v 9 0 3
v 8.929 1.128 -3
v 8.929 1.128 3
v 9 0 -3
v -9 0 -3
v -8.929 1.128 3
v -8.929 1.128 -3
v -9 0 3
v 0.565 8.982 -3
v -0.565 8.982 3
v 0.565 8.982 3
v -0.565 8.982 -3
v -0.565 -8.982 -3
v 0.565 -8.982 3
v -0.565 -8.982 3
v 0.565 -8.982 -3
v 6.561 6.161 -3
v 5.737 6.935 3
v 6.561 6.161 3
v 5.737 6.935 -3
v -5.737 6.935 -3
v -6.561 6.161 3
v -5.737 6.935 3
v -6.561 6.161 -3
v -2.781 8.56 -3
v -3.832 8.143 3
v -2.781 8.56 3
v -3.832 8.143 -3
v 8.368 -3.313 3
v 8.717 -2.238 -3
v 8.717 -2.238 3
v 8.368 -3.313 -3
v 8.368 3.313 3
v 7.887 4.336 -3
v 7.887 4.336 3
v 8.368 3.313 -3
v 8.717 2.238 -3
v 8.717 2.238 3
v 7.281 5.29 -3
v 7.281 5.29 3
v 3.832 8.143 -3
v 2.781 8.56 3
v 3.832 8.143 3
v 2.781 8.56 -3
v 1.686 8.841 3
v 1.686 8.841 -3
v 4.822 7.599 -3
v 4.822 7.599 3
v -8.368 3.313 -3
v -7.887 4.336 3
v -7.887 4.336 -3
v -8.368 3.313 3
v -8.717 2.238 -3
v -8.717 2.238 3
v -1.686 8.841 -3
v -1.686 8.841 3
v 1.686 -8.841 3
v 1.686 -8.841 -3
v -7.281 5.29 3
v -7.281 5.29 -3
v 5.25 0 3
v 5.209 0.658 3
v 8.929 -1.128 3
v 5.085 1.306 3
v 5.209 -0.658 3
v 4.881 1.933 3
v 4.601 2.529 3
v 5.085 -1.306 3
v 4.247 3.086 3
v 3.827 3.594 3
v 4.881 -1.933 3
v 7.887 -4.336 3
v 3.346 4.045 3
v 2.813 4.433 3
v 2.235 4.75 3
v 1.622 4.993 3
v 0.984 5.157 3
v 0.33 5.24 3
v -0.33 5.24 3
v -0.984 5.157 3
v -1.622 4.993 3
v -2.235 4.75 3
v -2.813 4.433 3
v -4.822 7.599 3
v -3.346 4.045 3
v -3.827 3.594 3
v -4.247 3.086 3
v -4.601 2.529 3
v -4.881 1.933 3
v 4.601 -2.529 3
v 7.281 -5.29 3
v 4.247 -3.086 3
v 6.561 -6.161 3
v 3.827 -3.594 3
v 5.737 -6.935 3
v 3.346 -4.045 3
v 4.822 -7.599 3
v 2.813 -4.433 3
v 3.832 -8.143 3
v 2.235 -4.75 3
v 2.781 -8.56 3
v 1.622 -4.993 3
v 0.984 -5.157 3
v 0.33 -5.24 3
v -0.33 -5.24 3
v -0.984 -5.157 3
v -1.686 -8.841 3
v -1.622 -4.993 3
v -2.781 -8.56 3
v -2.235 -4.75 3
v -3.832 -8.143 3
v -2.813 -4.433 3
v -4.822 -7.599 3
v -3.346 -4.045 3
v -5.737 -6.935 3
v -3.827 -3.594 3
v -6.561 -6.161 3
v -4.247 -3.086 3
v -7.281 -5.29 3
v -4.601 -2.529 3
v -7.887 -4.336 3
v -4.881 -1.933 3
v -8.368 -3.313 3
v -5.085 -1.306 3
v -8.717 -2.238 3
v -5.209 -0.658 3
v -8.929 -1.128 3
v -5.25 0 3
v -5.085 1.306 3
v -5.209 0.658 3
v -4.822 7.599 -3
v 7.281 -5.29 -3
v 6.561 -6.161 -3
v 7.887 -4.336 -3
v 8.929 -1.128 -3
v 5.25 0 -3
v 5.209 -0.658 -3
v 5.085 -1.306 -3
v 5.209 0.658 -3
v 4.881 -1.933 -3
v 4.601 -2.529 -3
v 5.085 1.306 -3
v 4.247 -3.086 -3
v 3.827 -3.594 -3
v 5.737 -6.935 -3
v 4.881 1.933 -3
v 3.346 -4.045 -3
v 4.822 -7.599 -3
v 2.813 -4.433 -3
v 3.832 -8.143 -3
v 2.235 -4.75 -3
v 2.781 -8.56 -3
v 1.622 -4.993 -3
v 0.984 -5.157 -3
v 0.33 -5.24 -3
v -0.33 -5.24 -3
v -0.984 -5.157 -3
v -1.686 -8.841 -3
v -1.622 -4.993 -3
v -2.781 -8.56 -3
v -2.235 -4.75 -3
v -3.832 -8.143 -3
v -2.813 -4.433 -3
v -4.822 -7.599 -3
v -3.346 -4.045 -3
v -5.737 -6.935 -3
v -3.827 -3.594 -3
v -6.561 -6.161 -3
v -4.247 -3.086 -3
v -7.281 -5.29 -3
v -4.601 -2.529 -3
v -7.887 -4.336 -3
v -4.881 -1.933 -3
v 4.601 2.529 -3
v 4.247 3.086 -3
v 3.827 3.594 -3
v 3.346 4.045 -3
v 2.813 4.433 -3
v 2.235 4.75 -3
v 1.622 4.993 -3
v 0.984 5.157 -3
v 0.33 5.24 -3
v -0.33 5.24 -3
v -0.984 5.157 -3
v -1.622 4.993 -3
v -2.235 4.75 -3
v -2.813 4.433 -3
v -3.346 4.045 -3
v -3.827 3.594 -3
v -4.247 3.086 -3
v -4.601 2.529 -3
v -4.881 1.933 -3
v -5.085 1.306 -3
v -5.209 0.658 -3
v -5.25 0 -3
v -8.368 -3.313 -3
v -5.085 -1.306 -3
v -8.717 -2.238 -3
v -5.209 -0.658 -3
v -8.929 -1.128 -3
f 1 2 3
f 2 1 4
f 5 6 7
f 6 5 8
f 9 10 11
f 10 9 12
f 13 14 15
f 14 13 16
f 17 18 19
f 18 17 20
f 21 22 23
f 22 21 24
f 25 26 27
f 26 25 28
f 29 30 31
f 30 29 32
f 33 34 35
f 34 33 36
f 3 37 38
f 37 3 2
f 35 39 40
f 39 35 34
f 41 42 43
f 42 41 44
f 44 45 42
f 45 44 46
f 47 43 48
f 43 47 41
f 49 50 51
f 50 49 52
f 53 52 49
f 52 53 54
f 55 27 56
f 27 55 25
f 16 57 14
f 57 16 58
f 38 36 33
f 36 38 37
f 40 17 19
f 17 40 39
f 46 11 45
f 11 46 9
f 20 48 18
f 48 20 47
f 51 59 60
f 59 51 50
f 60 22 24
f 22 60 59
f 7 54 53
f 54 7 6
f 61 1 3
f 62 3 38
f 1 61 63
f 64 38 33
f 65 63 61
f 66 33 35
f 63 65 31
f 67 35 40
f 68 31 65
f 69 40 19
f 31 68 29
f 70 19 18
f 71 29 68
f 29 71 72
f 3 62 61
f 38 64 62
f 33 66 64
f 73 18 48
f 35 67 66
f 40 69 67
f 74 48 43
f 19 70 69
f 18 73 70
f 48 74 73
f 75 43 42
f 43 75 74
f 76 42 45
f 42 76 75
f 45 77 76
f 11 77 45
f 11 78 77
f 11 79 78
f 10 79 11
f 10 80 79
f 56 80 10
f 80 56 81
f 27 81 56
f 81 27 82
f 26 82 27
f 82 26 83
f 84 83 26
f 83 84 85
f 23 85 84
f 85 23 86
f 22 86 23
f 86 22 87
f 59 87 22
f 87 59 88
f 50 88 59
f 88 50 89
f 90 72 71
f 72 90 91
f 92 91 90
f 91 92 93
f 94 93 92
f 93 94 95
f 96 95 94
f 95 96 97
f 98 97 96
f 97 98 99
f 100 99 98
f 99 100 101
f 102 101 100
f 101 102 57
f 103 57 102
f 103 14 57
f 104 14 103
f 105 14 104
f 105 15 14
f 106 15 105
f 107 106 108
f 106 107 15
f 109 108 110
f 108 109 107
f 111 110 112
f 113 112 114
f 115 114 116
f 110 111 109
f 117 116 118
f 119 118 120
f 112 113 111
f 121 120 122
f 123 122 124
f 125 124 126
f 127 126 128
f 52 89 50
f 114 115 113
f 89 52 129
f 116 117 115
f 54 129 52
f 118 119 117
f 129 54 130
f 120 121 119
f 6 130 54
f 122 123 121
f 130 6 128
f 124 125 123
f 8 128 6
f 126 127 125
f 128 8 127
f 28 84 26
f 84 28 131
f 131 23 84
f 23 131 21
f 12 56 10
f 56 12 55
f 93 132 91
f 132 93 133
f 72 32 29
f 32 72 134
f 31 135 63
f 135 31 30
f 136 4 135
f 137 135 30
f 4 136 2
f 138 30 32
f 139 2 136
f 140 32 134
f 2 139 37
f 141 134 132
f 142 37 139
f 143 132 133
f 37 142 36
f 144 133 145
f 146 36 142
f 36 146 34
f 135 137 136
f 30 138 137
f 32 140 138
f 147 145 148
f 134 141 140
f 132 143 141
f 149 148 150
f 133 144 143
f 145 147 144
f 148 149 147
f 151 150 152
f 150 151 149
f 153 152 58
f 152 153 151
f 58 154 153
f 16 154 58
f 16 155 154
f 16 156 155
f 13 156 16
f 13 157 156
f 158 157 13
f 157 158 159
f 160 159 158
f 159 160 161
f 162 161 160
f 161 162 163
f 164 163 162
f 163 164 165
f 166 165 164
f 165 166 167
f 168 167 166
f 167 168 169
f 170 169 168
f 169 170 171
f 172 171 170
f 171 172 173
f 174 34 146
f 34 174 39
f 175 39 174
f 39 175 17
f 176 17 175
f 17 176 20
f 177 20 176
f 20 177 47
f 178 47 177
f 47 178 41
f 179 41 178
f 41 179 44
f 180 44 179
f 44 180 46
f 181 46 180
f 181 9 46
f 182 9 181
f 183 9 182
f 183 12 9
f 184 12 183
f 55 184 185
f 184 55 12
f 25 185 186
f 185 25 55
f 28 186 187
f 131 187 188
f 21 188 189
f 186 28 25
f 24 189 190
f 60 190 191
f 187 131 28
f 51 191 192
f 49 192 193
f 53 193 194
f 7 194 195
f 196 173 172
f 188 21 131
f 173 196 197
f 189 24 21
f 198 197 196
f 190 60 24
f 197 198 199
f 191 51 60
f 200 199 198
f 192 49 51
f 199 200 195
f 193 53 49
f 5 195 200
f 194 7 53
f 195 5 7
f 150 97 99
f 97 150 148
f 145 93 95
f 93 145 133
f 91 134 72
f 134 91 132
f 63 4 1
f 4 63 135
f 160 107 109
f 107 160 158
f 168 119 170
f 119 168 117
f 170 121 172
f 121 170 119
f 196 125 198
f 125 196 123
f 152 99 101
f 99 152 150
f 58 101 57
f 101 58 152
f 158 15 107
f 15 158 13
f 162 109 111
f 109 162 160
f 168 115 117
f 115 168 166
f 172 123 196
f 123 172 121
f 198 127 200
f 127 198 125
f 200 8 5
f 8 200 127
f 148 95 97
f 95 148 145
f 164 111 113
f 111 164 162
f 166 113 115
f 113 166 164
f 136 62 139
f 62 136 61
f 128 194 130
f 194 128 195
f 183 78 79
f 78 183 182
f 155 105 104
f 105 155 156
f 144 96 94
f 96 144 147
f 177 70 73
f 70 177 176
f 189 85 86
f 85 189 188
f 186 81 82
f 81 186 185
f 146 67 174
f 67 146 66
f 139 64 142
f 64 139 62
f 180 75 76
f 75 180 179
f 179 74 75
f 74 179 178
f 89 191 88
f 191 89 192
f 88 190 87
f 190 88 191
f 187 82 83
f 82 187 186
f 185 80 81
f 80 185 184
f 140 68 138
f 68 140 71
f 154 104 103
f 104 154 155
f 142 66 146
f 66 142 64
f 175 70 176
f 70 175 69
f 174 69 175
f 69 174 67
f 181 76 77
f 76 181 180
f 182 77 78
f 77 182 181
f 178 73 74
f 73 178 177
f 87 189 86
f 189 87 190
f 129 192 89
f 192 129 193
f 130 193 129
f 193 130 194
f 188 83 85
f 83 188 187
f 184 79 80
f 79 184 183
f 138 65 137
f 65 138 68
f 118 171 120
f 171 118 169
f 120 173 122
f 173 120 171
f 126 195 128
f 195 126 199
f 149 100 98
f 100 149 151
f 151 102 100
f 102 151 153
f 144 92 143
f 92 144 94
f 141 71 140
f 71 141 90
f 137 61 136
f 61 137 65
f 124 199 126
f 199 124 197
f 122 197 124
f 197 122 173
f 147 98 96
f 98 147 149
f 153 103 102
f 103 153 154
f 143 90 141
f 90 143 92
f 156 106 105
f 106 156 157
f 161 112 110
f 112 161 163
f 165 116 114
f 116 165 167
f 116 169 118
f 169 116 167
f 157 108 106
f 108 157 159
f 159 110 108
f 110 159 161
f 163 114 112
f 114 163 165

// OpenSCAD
$fn = 50;


difference() {
	union() {
		translate(v = [0, 0, -3.0000000000]) {
			cylinder(h = 6, r = 9.0000000000);
		}
	}
	union() {
		translate(v = [0, 0, -100.0000000000]) {
			cylinder(h = 200, r = 5.2500000000);
		}
	}
}
